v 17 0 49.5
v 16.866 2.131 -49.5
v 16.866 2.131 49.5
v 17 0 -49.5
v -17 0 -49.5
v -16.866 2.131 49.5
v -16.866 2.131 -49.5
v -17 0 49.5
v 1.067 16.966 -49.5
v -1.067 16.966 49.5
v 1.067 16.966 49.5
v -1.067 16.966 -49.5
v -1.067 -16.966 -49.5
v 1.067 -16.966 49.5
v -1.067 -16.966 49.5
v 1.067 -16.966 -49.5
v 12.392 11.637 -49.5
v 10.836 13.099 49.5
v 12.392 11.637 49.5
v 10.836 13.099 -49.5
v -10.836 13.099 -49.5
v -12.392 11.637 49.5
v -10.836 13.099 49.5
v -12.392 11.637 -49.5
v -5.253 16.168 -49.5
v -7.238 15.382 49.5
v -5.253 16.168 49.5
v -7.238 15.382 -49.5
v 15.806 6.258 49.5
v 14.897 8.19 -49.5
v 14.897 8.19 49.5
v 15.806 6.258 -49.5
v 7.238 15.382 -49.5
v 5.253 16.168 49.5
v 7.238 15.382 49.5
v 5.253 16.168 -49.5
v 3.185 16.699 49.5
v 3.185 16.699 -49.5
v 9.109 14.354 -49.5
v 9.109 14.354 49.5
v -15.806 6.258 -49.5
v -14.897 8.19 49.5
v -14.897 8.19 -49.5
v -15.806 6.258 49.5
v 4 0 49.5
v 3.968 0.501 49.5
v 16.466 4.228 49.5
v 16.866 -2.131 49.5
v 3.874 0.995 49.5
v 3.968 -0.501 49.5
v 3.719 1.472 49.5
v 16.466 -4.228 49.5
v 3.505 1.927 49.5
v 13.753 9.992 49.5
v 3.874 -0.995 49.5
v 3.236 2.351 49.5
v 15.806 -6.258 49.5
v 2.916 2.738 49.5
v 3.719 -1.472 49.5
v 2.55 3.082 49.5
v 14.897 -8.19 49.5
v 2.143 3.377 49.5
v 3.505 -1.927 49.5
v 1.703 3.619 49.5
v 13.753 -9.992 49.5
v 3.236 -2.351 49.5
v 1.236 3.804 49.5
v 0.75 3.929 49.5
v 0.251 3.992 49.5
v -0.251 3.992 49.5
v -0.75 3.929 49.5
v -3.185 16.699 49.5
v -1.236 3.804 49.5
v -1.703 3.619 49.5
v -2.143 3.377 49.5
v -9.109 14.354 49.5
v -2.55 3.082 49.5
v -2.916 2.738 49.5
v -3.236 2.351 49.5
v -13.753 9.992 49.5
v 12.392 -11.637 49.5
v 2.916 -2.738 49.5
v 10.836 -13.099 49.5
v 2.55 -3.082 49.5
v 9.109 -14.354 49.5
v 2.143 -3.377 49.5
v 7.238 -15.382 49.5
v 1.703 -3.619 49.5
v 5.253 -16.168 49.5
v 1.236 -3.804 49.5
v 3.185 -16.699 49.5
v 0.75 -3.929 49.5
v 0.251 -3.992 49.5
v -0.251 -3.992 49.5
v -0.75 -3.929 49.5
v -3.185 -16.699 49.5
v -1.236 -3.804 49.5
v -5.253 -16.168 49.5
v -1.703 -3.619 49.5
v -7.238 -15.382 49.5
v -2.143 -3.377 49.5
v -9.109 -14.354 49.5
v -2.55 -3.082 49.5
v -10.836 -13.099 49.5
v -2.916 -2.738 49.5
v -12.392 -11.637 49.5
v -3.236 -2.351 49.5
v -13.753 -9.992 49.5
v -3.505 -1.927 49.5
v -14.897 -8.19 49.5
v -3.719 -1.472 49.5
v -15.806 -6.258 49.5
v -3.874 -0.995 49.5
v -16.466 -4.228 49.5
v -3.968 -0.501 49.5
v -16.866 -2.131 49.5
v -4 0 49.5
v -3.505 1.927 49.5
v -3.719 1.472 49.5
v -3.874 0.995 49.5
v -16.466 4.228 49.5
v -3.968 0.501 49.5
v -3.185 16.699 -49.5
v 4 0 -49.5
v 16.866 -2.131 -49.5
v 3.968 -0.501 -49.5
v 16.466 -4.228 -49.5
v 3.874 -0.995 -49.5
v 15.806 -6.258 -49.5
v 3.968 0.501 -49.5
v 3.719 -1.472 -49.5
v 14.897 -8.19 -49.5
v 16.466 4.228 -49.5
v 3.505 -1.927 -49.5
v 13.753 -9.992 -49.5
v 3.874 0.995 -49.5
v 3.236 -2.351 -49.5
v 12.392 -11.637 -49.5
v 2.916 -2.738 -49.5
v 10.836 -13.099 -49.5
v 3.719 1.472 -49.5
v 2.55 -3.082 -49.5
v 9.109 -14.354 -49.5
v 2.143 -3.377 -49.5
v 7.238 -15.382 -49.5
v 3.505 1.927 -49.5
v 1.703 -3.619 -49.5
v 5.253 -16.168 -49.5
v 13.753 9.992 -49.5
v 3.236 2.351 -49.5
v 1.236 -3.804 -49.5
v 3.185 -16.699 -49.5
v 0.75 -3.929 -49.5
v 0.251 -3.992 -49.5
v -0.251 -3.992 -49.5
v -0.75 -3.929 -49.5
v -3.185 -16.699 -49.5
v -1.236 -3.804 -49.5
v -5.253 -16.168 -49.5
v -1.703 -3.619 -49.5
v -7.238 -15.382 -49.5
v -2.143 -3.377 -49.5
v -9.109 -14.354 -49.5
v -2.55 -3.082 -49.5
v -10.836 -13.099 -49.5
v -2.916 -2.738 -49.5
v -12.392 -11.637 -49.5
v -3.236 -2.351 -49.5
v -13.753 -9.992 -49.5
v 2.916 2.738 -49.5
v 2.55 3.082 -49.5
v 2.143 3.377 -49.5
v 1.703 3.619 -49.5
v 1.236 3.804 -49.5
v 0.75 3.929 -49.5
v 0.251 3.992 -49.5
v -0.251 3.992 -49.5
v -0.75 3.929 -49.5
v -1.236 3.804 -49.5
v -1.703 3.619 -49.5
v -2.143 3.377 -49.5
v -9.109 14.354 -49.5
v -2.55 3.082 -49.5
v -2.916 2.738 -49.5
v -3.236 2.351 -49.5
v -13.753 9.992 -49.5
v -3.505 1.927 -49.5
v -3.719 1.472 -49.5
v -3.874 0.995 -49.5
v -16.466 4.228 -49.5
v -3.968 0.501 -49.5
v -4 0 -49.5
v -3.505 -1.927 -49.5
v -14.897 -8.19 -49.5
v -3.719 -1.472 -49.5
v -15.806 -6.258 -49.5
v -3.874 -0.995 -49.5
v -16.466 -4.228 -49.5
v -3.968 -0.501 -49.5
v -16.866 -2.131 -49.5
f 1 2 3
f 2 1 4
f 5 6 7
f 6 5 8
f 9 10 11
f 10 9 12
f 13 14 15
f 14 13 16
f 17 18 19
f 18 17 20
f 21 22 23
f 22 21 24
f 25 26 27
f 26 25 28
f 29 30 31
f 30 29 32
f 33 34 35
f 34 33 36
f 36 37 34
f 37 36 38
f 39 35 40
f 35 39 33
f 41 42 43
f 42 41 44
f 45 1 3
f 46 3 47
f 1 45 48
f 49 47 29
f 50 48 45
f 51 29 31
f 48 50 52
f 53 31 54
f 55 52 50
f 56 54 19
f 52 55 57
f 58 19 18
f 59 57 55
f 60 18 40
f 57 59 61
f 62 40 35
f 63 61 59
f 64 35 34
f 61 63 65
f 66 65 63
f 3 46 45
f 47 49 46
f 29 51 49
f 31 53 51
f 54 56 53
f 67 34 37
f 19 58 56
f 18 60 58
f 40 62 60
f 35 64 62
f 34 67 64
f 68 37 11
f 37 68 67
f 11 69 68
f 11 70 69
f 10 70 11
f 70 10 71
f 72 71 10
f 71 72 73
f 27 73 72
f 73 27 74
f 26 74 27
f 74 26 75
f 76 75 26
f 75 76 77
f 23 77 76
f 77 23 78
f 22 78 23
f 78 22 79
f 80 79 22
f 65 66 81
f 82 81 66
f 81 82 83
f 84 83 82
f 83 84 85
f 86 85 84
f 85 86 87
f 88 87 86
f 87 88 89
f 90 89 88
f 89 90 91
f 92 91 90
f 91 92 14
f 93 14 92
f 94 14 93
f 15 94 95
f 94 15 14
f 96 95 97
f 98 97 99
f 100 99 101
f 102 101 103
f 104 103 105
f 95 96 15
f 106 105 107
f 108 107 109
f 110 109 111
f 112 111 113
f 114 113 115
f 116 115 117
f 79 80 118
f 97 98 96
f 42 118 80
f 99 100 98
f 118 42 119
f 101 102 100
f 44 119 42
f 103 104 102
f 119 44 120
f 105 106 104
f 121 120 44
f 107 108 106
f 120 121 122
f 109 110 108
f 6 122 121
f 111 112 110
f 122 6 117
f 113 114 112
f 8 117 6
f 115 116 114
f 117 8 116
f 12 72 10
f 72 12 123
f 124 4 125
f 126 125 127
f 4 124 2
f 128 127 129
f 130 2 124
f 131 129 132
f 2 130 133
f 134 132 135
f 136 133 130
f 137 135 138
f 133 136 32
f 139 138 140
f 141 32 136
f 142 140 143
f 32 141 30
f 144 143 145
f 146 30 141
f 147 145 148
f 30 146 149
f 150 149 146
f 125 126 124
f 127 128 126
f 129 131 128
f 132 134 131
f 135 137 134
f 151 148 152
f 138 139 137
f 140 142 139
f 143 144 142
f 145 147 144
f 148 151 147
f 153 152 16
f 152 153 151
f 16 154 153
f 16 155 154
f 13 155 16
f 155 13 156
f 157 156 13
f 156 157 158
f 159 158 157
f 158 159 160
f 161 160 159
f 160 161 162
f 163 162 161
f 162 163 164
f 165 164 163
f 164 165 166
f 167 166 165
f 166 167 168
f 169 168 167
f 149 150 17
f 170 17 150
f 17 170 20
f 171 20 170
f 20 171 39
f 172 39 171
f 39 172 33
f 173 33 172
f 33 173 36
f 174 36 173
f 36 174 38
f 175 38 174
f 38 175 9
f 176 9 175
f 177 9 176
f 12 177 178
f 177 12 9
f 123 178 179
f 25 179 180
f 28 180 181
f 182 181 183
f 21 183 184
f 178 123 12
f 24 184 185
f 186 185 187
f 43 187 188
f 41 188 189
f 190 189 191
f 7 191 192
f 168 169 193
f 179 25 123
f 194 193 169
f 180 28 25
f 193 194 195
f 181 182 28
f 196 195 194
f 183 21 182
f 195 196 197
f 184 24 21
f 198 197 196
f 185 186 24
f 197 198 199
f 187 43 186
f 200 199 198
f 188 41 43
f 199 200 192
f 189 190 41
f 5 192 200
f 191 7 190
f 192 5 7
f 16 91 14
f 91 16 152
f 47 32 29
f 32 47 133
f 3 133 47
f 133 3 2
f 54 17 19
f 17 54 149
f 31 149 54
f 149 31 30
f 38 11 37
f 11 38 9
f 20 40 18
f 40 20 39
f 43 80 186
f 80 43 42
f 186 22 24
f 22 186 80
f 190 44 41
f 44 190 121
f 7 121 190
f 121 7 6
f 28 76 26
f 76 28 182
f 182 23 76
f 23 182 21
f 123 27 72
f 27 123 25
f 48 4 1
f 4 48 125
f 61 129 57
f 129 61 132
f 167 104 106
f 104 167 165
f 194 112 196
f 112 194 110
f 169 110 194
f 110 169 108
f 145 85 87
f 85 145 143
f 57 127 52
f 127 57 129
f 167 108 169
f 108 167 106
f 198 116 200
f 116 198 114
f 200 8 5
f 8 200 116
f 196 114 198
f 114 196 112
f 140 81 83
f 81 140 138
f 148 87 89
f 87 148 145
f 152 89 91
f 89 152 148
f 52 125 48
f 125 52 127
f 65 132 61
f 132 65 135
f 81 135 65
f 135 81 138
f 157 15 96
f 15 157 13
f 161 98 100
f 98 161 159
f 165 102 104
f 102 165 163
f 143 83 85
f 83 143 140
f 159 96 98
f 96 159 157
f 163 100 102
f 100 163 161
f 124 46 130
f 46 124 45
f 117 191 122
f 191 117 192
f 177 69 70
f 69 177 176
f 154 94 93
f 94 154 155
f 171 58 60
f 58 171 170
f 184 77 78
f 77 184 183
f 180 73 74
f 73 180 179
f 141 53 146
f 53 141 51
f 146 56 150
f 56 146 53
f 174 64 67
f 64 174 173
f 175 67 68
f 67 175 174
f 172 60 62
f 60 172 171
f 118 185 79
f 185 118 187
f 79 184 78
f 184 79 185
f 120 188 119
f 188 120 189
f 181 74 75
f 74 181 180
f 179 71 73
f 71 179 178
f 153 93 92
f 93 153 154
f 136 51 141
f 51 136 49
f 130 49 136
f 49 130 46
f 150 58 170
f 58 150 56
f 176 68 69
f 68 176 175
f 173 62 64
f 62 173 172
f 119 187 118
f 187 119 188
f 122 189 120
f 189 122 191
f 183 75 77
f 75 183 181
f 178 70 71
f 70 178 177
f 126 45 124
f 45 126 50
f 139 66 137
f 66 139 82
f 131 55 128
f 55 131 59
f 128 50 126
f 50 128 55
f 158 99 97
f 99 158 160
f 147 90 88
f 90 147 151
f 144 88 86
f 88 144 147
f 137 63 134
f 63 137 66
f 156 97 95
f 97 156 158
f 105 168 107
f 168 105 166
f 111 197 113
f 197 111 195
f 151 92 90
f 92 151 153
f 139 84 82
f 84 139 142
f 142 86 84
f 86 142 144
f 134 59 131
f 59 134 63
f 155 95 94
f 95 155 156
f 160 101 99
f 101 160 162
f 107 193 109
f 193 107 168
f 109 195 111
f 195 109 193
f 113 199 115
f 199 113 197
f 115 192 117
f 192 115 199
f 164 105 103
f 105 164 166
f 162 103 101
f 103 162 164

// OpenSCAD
$fn = 50;


difference() {
	union() {
		translate(v = [0, 0, -49.5000000000]) {
			cylinder(h = 99, r = 17.0000000000);
		}
	}
	union() {
		translate(v = [0, 0, -100.0000000000]) {
			cylinder(h = 200, r = 4);
		}
	}
}
